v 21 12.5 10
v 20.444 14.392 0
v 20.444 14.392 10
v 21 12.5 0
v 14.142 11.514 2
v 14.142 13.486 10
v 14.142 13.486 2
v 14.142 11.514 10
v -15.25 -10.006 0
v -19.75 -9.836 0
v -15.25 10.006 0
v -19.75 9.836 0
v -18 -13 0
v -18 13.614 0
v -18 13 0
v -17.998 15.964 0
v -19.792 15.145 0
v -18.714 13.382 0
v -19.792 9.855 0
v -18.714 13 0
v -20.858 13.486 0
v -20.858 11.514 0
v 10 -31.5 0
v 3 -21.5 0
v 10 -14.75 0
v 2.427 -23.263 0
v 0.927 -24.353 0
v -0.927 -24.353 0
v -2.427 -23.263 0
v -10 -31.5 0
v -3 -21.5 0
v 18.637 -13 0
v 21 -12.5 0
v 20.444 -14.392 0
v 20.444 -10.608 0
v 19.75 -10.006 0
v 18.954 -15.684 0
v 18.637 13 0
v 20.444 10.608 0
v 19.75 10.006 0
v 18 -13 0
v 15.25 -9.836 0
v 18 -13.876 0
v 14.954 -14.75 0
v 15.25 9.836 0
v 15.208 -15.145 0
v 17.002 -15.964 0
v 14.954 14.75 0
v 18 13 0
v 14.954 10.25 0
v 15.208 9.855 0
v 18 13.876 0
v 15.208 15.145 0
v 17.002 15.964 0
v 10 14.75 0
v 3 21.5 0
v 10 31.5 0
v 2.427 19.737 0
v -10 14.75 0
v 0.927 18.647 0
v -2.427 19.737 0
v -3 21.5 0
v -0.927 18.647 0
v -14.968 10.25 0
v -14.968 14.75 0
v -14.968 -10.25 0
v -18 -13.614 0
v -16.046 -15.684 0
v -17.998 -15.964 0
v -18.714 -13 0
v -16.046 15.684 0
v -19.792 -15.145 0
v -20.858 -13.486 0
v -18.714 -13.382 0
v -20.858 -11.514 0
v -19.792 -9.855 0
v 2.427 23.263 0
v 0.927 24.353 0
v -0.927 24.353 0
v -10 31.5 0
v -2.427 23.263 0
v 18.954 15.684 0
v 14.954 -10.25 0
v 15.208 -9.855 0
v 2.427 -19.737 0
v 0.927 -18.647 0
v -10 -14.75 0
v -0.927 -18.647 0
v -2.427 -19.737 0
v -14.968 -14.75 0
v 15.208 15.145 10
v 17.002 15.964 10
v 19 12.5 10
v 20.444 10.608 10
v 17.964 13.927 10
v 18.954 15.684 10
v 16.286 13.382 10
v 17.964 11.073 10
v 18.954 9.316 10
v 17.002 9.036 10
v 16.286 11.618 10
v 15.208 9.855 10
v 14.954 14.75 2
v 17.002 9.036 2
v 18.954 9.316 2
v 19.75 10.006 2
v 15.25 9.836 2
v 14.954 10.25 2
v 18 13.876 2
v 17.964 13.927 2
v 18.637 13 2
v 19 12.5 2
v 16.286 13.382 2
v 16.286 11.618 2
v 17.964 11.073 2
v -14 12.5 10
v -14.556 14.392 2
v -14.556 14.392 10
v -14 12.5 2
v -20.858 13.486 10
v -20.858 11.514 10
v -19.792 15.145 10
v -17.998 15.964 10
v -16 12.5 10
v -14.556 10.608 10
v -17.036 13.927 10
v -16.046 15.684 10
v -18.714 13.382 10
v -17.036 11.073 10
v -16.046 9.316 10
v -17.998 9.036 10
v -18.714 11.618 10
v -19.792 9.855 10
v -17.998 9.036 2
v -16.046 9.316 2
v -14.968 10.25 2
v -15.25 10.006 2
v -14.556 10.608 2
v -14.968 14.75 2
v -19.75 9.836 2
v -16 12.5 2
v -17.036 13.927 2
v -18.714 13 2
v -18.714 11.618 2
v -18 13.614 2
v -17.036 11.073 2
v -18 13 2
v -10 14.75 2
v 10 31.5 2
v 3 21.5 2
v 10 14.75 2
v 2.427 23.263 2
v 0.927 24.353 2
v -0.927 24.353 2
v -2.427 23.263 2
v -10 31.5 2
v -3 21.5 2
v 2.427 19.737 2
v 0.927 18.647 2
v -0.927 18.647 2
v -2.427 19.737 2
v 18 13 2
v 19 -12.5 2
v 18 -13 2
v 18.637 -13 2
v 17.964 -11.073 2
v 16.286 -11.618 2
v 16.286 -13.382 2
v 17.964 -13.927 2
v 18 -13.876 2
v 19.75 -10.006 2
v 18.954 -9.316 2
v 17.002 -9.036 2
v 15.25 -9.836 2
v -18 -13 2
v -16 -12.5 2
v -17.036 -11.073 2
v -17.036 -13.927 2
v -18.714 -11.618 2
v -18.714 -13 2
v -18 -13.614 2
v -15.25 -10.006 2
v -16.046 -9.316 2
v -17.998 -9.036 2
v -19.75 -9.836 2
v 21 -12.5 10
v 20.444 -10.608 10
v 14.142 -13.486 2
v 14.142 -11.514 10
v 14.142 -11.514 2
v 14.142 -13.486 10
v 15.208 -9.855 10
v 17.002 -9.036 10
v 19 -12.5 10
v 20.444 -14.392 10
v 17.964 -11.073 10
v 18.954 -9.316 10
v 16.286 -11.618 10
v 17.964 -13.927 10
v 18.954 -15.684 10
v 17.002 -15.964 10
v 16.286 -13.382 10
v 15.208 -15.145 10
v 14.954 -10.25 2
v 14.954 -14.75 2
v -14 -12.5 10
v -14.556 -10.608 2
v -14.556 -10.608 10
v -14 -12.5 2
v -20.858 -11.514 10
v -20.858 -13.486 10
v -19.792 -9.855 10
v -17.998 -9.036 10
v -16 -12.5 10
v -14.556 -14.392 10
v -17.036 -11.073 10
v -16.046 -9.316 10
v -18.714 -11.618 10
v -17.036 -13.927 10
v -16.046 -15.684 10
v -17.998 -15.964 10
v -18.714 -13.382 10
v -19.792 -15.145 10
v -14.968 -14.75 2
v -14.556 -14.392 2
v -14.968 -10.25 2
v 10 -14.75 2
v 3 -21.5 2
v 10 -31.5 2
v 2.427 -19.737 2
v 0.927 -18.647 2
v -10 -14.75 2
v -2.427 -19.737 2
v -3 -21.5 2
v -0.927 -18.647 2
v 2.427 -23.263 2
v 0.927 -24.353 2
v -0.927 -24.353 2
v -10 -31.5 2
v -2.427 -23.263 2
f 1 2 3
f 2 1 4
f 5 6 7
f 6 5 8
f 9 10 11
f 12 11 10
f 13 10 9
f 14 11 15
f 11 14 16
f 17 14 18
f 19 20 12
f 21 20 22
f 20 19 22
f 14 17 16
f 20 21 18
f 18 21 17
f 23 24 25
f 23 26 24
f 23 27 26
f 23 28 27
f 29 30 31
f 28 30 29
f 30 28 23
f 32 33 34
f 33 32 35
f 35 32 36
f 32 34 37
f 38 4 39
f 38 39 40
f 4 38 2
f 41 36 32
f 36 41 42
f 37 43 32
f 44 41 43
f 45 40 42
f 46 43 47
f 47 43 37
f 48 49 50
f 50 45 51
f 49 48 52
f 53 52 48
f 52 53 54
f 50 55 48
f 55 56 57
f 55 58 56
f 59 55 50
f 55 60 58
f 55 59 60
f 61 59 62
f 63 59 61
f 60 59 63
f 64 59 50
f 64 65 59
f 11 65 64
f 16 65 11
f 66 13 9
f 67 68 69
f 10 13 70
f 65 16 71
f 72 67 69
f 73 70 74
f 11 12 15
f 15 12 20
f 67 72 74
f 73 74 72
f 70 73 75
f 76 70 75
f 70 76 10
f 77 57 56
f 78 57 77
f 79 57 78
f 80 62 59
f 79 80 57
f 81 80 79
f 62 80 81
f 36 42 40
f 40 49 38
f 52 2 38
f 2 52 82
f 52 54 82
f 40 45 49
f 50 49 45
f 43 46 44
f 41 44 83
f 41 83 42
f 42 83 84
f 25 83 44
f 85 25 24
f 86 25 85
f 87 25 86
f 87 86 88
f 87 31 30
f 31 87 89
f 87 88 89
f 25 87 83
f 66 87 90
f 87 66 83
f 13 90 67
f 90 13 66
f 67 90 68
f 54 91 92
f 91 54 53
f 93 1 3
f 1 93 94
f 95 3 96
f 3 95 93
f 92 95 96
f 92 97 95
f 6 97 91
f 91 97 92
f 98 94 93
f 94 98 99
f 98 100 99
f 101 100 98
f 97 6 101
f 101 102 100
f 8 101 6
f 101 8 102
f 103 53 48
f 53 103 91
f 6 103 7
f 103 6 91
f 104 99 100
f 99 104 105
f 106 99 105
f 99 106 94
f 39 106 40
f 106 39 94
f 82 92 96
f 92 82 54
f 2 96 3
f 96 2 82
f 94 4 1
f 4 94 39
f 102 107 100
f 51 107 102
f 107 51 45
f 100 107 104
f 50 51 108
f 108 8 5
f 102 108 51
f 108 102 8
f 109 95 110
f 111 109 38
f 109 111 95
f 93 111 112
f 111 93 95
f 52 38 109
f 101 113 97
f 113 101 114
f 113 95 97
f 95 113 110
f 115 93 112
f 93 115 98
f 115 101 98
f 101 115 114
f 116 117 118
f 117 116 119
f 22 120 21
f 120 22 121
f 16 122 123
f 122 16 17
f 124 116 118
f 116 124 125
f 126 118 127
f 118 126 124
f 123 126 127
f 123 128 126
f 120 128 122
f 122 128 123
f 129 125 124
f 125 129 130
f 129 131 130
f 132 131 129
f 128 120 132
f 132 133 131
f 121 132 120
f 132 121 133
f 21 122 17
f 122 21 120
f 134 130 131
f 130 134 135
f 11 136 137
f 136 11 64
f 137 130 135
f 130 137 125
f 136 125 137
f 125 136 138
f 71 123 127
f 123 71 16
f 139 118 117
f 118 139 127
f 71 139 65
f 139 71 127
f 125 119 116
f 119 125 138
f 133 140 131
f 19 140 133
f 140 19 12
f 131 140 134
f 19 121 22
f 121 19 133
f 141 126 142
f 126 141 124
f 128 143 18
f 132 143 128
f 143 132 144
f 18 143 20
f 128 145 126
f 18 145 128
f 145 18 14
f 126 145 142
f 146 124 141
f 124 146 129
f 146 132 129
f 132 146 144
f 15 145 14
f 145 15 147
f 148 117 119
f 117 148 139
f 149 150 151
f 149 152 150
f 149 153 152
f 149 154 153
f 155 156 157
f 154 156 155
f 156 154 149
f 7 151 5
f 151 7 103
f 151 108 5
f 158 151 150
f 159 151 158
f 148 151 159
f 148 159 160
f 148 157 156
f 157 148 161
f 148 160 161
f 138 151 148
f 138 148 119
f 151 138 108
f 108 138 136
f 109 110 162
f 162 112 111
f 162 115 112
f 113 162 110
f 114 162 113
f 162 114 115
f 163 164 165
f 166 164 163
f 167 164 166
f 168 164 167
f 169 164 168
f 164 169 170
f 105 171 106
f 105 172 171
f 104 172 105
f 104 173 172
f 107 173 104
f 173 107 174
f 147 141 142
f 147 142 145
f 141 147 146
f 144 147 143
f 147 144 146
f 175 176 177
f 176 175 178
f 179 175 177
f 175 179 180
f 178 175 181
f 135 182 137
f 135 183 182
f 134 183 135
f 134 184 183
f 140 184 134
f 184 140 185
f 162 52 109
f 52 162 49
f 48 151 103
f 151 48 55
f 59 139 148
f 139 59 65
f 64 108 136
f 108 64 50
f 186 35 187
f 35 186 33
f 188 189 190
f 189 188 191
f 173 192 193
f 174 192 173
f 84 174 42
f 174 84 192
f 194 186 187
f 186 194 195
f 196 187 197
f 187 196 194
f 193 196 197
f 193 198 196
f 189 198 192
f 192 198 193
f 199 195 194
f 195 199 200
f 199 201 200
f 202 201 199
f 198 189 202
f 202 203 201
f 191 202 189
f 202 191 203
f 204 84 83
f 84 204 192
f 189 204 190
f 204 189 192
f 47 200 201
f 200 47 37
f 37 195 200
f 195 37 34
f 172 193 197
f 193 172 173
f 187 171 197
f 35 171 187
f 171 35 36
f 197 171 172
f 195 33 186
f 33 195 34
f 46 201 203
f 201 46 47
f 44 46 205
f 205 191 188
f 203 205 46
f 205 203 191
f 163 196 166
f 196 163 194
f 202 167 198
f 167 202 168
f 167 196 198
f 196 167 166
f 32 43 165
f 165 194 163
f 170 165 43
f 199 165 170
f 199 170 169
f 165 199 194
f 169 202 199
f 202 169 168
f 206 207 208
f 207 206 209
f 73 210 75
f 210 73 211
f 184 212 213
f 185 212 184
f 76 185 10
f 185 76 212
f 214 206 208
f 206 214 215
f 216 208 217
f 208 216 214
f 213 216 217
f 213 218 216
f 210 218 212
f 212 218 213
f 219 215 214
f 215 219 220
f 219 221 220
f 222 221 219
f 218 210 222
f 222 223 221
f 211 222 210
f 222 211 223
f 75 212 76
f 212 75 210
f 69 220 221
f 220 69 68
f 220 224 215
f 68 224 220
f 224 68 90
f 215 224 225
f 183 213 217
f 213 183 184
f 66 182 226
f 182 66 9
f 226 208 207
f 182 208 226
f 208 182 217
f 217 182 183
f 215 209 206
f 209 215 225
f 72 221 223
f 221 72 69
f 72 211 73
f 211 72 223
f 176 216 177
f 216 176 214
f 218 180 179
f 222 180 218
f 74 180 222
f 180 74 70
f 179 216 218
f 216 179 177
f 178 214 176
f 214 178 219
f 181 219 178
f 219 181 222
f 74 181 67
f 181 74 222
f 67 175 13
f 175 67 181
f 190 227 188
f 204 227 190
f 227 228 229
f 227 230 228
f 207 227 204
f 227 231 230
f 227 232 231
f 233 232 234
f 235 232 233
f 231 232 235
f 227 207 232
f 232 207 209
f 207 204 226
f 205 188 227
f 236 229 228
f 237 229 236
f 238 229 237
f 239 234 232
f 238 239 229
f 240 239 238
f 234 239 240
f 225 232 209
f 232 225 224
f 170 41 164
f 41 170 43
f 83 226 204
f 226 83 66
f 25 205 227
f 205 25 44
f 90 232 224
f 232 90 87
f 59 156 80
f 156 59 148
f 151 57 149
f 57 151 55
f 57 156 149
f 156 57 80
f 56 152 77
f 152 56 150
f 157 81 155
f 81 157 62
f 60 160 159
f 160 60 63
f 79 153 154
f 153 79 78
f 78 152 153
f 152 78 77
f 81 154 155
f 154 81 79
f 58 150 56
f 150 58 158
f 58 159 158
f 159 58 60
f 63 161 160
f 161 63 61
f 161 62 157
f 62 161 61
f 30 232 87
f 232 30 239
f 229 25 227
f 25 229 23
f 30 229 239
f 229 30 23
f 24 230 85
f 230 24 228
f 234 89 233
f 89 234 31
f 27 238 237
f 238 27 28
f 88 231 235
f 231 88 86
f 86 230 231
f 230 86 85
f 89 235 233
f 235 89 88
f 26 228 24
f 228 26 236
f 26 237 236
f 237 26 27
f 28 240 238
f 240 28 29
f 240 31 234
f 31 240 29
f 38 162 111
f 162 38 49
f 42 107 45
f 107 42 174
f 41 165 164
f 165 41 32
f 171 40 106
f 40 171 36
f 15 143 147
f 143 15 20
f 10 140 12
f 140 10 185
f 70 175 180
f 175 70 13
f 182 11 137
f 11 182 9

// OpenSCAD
union() {
	translate(v = [0, 12.5000000000, 0]) {
		union() {
			translate(v = [0, 0, 1.0000000000]) {
				cube(center = true, size = [36.0000000000, 4.5000000000, 2]);
			}
			translate(v = [17.5000000000, 0, 0]) {
				difference() {
					cylinder(d = 7, h = 10);
					translate(v = [0, 0, -10]) {
						cylinder(d = 3, h = 20);
					}
				}
			}
			translate(v = [-17.5000000000, 0, 0]) {
				difference() {
					cylinder(d = 7, h = 10);
					translate(v = [0, 0, -10]) {
						cylinder(d = 3, h = 20);
					}
				}
			}
		}
	}
	translate(v = [0, -12.5000000000, 0]) {
		union() {
			translate(v = [0, 0, 1.0000000000]) {
				cube(center = true, size = [36.0000000000, 4.5000000000, 2]);
			}
			translate(v = [17.5000000000, 0, 0]) {
				difference() {
					cylinder(d = 7, h = 10);
					translate(v = [0, 0, -10]) {
						cylinder(d = 3, h = 20);
					}
				}
			}
			translate(v = [-17.5000000000, 0, 0]) {
				difference() {
					cylinder(d = 7, h = 10);
					translate(v = [0, 0, -10]) {
						cylinder(d = 3, h = 20);
					}
				}
			}
		}
	}
	translate(v = [17.5000000000, 0, 0]) {
		rotate(a = [0, 0, 90]) {
			translate(v = [0, 0, 1.0000000000]) {
				cube(center = true, size = [26.0000000000, 4.5000000000, 2]);
			}
		}
	}
	translate(v = [-17.5000000000, 0, 0]) {
		rotate(a = [0, 0, 90]) {
			translate(v = [0, 0, 1.0000000000]) {
				cube(center = true, size = [26.0000000000, 4.5000000000, 2]);
			}
		}
	}
	translate(v = [0, 21.5000000000, 0]) {
		difference() {
			translate(v = [0, 0, 1.0000000000]) {
				cube(center = true, size = [20, 20, 2]);
			}
			cylinder(d = 6, h = 20);
		}
	}
	translate(v = [0, -21.5000000000, 0]) {
		difference() {
			translate(v = [0, 0, 1.0000000000]) {
				cube(center = true, size = [20, 20, 2]);
			}
			cylinder(d = 6, h = 20);
		}
	}
}
